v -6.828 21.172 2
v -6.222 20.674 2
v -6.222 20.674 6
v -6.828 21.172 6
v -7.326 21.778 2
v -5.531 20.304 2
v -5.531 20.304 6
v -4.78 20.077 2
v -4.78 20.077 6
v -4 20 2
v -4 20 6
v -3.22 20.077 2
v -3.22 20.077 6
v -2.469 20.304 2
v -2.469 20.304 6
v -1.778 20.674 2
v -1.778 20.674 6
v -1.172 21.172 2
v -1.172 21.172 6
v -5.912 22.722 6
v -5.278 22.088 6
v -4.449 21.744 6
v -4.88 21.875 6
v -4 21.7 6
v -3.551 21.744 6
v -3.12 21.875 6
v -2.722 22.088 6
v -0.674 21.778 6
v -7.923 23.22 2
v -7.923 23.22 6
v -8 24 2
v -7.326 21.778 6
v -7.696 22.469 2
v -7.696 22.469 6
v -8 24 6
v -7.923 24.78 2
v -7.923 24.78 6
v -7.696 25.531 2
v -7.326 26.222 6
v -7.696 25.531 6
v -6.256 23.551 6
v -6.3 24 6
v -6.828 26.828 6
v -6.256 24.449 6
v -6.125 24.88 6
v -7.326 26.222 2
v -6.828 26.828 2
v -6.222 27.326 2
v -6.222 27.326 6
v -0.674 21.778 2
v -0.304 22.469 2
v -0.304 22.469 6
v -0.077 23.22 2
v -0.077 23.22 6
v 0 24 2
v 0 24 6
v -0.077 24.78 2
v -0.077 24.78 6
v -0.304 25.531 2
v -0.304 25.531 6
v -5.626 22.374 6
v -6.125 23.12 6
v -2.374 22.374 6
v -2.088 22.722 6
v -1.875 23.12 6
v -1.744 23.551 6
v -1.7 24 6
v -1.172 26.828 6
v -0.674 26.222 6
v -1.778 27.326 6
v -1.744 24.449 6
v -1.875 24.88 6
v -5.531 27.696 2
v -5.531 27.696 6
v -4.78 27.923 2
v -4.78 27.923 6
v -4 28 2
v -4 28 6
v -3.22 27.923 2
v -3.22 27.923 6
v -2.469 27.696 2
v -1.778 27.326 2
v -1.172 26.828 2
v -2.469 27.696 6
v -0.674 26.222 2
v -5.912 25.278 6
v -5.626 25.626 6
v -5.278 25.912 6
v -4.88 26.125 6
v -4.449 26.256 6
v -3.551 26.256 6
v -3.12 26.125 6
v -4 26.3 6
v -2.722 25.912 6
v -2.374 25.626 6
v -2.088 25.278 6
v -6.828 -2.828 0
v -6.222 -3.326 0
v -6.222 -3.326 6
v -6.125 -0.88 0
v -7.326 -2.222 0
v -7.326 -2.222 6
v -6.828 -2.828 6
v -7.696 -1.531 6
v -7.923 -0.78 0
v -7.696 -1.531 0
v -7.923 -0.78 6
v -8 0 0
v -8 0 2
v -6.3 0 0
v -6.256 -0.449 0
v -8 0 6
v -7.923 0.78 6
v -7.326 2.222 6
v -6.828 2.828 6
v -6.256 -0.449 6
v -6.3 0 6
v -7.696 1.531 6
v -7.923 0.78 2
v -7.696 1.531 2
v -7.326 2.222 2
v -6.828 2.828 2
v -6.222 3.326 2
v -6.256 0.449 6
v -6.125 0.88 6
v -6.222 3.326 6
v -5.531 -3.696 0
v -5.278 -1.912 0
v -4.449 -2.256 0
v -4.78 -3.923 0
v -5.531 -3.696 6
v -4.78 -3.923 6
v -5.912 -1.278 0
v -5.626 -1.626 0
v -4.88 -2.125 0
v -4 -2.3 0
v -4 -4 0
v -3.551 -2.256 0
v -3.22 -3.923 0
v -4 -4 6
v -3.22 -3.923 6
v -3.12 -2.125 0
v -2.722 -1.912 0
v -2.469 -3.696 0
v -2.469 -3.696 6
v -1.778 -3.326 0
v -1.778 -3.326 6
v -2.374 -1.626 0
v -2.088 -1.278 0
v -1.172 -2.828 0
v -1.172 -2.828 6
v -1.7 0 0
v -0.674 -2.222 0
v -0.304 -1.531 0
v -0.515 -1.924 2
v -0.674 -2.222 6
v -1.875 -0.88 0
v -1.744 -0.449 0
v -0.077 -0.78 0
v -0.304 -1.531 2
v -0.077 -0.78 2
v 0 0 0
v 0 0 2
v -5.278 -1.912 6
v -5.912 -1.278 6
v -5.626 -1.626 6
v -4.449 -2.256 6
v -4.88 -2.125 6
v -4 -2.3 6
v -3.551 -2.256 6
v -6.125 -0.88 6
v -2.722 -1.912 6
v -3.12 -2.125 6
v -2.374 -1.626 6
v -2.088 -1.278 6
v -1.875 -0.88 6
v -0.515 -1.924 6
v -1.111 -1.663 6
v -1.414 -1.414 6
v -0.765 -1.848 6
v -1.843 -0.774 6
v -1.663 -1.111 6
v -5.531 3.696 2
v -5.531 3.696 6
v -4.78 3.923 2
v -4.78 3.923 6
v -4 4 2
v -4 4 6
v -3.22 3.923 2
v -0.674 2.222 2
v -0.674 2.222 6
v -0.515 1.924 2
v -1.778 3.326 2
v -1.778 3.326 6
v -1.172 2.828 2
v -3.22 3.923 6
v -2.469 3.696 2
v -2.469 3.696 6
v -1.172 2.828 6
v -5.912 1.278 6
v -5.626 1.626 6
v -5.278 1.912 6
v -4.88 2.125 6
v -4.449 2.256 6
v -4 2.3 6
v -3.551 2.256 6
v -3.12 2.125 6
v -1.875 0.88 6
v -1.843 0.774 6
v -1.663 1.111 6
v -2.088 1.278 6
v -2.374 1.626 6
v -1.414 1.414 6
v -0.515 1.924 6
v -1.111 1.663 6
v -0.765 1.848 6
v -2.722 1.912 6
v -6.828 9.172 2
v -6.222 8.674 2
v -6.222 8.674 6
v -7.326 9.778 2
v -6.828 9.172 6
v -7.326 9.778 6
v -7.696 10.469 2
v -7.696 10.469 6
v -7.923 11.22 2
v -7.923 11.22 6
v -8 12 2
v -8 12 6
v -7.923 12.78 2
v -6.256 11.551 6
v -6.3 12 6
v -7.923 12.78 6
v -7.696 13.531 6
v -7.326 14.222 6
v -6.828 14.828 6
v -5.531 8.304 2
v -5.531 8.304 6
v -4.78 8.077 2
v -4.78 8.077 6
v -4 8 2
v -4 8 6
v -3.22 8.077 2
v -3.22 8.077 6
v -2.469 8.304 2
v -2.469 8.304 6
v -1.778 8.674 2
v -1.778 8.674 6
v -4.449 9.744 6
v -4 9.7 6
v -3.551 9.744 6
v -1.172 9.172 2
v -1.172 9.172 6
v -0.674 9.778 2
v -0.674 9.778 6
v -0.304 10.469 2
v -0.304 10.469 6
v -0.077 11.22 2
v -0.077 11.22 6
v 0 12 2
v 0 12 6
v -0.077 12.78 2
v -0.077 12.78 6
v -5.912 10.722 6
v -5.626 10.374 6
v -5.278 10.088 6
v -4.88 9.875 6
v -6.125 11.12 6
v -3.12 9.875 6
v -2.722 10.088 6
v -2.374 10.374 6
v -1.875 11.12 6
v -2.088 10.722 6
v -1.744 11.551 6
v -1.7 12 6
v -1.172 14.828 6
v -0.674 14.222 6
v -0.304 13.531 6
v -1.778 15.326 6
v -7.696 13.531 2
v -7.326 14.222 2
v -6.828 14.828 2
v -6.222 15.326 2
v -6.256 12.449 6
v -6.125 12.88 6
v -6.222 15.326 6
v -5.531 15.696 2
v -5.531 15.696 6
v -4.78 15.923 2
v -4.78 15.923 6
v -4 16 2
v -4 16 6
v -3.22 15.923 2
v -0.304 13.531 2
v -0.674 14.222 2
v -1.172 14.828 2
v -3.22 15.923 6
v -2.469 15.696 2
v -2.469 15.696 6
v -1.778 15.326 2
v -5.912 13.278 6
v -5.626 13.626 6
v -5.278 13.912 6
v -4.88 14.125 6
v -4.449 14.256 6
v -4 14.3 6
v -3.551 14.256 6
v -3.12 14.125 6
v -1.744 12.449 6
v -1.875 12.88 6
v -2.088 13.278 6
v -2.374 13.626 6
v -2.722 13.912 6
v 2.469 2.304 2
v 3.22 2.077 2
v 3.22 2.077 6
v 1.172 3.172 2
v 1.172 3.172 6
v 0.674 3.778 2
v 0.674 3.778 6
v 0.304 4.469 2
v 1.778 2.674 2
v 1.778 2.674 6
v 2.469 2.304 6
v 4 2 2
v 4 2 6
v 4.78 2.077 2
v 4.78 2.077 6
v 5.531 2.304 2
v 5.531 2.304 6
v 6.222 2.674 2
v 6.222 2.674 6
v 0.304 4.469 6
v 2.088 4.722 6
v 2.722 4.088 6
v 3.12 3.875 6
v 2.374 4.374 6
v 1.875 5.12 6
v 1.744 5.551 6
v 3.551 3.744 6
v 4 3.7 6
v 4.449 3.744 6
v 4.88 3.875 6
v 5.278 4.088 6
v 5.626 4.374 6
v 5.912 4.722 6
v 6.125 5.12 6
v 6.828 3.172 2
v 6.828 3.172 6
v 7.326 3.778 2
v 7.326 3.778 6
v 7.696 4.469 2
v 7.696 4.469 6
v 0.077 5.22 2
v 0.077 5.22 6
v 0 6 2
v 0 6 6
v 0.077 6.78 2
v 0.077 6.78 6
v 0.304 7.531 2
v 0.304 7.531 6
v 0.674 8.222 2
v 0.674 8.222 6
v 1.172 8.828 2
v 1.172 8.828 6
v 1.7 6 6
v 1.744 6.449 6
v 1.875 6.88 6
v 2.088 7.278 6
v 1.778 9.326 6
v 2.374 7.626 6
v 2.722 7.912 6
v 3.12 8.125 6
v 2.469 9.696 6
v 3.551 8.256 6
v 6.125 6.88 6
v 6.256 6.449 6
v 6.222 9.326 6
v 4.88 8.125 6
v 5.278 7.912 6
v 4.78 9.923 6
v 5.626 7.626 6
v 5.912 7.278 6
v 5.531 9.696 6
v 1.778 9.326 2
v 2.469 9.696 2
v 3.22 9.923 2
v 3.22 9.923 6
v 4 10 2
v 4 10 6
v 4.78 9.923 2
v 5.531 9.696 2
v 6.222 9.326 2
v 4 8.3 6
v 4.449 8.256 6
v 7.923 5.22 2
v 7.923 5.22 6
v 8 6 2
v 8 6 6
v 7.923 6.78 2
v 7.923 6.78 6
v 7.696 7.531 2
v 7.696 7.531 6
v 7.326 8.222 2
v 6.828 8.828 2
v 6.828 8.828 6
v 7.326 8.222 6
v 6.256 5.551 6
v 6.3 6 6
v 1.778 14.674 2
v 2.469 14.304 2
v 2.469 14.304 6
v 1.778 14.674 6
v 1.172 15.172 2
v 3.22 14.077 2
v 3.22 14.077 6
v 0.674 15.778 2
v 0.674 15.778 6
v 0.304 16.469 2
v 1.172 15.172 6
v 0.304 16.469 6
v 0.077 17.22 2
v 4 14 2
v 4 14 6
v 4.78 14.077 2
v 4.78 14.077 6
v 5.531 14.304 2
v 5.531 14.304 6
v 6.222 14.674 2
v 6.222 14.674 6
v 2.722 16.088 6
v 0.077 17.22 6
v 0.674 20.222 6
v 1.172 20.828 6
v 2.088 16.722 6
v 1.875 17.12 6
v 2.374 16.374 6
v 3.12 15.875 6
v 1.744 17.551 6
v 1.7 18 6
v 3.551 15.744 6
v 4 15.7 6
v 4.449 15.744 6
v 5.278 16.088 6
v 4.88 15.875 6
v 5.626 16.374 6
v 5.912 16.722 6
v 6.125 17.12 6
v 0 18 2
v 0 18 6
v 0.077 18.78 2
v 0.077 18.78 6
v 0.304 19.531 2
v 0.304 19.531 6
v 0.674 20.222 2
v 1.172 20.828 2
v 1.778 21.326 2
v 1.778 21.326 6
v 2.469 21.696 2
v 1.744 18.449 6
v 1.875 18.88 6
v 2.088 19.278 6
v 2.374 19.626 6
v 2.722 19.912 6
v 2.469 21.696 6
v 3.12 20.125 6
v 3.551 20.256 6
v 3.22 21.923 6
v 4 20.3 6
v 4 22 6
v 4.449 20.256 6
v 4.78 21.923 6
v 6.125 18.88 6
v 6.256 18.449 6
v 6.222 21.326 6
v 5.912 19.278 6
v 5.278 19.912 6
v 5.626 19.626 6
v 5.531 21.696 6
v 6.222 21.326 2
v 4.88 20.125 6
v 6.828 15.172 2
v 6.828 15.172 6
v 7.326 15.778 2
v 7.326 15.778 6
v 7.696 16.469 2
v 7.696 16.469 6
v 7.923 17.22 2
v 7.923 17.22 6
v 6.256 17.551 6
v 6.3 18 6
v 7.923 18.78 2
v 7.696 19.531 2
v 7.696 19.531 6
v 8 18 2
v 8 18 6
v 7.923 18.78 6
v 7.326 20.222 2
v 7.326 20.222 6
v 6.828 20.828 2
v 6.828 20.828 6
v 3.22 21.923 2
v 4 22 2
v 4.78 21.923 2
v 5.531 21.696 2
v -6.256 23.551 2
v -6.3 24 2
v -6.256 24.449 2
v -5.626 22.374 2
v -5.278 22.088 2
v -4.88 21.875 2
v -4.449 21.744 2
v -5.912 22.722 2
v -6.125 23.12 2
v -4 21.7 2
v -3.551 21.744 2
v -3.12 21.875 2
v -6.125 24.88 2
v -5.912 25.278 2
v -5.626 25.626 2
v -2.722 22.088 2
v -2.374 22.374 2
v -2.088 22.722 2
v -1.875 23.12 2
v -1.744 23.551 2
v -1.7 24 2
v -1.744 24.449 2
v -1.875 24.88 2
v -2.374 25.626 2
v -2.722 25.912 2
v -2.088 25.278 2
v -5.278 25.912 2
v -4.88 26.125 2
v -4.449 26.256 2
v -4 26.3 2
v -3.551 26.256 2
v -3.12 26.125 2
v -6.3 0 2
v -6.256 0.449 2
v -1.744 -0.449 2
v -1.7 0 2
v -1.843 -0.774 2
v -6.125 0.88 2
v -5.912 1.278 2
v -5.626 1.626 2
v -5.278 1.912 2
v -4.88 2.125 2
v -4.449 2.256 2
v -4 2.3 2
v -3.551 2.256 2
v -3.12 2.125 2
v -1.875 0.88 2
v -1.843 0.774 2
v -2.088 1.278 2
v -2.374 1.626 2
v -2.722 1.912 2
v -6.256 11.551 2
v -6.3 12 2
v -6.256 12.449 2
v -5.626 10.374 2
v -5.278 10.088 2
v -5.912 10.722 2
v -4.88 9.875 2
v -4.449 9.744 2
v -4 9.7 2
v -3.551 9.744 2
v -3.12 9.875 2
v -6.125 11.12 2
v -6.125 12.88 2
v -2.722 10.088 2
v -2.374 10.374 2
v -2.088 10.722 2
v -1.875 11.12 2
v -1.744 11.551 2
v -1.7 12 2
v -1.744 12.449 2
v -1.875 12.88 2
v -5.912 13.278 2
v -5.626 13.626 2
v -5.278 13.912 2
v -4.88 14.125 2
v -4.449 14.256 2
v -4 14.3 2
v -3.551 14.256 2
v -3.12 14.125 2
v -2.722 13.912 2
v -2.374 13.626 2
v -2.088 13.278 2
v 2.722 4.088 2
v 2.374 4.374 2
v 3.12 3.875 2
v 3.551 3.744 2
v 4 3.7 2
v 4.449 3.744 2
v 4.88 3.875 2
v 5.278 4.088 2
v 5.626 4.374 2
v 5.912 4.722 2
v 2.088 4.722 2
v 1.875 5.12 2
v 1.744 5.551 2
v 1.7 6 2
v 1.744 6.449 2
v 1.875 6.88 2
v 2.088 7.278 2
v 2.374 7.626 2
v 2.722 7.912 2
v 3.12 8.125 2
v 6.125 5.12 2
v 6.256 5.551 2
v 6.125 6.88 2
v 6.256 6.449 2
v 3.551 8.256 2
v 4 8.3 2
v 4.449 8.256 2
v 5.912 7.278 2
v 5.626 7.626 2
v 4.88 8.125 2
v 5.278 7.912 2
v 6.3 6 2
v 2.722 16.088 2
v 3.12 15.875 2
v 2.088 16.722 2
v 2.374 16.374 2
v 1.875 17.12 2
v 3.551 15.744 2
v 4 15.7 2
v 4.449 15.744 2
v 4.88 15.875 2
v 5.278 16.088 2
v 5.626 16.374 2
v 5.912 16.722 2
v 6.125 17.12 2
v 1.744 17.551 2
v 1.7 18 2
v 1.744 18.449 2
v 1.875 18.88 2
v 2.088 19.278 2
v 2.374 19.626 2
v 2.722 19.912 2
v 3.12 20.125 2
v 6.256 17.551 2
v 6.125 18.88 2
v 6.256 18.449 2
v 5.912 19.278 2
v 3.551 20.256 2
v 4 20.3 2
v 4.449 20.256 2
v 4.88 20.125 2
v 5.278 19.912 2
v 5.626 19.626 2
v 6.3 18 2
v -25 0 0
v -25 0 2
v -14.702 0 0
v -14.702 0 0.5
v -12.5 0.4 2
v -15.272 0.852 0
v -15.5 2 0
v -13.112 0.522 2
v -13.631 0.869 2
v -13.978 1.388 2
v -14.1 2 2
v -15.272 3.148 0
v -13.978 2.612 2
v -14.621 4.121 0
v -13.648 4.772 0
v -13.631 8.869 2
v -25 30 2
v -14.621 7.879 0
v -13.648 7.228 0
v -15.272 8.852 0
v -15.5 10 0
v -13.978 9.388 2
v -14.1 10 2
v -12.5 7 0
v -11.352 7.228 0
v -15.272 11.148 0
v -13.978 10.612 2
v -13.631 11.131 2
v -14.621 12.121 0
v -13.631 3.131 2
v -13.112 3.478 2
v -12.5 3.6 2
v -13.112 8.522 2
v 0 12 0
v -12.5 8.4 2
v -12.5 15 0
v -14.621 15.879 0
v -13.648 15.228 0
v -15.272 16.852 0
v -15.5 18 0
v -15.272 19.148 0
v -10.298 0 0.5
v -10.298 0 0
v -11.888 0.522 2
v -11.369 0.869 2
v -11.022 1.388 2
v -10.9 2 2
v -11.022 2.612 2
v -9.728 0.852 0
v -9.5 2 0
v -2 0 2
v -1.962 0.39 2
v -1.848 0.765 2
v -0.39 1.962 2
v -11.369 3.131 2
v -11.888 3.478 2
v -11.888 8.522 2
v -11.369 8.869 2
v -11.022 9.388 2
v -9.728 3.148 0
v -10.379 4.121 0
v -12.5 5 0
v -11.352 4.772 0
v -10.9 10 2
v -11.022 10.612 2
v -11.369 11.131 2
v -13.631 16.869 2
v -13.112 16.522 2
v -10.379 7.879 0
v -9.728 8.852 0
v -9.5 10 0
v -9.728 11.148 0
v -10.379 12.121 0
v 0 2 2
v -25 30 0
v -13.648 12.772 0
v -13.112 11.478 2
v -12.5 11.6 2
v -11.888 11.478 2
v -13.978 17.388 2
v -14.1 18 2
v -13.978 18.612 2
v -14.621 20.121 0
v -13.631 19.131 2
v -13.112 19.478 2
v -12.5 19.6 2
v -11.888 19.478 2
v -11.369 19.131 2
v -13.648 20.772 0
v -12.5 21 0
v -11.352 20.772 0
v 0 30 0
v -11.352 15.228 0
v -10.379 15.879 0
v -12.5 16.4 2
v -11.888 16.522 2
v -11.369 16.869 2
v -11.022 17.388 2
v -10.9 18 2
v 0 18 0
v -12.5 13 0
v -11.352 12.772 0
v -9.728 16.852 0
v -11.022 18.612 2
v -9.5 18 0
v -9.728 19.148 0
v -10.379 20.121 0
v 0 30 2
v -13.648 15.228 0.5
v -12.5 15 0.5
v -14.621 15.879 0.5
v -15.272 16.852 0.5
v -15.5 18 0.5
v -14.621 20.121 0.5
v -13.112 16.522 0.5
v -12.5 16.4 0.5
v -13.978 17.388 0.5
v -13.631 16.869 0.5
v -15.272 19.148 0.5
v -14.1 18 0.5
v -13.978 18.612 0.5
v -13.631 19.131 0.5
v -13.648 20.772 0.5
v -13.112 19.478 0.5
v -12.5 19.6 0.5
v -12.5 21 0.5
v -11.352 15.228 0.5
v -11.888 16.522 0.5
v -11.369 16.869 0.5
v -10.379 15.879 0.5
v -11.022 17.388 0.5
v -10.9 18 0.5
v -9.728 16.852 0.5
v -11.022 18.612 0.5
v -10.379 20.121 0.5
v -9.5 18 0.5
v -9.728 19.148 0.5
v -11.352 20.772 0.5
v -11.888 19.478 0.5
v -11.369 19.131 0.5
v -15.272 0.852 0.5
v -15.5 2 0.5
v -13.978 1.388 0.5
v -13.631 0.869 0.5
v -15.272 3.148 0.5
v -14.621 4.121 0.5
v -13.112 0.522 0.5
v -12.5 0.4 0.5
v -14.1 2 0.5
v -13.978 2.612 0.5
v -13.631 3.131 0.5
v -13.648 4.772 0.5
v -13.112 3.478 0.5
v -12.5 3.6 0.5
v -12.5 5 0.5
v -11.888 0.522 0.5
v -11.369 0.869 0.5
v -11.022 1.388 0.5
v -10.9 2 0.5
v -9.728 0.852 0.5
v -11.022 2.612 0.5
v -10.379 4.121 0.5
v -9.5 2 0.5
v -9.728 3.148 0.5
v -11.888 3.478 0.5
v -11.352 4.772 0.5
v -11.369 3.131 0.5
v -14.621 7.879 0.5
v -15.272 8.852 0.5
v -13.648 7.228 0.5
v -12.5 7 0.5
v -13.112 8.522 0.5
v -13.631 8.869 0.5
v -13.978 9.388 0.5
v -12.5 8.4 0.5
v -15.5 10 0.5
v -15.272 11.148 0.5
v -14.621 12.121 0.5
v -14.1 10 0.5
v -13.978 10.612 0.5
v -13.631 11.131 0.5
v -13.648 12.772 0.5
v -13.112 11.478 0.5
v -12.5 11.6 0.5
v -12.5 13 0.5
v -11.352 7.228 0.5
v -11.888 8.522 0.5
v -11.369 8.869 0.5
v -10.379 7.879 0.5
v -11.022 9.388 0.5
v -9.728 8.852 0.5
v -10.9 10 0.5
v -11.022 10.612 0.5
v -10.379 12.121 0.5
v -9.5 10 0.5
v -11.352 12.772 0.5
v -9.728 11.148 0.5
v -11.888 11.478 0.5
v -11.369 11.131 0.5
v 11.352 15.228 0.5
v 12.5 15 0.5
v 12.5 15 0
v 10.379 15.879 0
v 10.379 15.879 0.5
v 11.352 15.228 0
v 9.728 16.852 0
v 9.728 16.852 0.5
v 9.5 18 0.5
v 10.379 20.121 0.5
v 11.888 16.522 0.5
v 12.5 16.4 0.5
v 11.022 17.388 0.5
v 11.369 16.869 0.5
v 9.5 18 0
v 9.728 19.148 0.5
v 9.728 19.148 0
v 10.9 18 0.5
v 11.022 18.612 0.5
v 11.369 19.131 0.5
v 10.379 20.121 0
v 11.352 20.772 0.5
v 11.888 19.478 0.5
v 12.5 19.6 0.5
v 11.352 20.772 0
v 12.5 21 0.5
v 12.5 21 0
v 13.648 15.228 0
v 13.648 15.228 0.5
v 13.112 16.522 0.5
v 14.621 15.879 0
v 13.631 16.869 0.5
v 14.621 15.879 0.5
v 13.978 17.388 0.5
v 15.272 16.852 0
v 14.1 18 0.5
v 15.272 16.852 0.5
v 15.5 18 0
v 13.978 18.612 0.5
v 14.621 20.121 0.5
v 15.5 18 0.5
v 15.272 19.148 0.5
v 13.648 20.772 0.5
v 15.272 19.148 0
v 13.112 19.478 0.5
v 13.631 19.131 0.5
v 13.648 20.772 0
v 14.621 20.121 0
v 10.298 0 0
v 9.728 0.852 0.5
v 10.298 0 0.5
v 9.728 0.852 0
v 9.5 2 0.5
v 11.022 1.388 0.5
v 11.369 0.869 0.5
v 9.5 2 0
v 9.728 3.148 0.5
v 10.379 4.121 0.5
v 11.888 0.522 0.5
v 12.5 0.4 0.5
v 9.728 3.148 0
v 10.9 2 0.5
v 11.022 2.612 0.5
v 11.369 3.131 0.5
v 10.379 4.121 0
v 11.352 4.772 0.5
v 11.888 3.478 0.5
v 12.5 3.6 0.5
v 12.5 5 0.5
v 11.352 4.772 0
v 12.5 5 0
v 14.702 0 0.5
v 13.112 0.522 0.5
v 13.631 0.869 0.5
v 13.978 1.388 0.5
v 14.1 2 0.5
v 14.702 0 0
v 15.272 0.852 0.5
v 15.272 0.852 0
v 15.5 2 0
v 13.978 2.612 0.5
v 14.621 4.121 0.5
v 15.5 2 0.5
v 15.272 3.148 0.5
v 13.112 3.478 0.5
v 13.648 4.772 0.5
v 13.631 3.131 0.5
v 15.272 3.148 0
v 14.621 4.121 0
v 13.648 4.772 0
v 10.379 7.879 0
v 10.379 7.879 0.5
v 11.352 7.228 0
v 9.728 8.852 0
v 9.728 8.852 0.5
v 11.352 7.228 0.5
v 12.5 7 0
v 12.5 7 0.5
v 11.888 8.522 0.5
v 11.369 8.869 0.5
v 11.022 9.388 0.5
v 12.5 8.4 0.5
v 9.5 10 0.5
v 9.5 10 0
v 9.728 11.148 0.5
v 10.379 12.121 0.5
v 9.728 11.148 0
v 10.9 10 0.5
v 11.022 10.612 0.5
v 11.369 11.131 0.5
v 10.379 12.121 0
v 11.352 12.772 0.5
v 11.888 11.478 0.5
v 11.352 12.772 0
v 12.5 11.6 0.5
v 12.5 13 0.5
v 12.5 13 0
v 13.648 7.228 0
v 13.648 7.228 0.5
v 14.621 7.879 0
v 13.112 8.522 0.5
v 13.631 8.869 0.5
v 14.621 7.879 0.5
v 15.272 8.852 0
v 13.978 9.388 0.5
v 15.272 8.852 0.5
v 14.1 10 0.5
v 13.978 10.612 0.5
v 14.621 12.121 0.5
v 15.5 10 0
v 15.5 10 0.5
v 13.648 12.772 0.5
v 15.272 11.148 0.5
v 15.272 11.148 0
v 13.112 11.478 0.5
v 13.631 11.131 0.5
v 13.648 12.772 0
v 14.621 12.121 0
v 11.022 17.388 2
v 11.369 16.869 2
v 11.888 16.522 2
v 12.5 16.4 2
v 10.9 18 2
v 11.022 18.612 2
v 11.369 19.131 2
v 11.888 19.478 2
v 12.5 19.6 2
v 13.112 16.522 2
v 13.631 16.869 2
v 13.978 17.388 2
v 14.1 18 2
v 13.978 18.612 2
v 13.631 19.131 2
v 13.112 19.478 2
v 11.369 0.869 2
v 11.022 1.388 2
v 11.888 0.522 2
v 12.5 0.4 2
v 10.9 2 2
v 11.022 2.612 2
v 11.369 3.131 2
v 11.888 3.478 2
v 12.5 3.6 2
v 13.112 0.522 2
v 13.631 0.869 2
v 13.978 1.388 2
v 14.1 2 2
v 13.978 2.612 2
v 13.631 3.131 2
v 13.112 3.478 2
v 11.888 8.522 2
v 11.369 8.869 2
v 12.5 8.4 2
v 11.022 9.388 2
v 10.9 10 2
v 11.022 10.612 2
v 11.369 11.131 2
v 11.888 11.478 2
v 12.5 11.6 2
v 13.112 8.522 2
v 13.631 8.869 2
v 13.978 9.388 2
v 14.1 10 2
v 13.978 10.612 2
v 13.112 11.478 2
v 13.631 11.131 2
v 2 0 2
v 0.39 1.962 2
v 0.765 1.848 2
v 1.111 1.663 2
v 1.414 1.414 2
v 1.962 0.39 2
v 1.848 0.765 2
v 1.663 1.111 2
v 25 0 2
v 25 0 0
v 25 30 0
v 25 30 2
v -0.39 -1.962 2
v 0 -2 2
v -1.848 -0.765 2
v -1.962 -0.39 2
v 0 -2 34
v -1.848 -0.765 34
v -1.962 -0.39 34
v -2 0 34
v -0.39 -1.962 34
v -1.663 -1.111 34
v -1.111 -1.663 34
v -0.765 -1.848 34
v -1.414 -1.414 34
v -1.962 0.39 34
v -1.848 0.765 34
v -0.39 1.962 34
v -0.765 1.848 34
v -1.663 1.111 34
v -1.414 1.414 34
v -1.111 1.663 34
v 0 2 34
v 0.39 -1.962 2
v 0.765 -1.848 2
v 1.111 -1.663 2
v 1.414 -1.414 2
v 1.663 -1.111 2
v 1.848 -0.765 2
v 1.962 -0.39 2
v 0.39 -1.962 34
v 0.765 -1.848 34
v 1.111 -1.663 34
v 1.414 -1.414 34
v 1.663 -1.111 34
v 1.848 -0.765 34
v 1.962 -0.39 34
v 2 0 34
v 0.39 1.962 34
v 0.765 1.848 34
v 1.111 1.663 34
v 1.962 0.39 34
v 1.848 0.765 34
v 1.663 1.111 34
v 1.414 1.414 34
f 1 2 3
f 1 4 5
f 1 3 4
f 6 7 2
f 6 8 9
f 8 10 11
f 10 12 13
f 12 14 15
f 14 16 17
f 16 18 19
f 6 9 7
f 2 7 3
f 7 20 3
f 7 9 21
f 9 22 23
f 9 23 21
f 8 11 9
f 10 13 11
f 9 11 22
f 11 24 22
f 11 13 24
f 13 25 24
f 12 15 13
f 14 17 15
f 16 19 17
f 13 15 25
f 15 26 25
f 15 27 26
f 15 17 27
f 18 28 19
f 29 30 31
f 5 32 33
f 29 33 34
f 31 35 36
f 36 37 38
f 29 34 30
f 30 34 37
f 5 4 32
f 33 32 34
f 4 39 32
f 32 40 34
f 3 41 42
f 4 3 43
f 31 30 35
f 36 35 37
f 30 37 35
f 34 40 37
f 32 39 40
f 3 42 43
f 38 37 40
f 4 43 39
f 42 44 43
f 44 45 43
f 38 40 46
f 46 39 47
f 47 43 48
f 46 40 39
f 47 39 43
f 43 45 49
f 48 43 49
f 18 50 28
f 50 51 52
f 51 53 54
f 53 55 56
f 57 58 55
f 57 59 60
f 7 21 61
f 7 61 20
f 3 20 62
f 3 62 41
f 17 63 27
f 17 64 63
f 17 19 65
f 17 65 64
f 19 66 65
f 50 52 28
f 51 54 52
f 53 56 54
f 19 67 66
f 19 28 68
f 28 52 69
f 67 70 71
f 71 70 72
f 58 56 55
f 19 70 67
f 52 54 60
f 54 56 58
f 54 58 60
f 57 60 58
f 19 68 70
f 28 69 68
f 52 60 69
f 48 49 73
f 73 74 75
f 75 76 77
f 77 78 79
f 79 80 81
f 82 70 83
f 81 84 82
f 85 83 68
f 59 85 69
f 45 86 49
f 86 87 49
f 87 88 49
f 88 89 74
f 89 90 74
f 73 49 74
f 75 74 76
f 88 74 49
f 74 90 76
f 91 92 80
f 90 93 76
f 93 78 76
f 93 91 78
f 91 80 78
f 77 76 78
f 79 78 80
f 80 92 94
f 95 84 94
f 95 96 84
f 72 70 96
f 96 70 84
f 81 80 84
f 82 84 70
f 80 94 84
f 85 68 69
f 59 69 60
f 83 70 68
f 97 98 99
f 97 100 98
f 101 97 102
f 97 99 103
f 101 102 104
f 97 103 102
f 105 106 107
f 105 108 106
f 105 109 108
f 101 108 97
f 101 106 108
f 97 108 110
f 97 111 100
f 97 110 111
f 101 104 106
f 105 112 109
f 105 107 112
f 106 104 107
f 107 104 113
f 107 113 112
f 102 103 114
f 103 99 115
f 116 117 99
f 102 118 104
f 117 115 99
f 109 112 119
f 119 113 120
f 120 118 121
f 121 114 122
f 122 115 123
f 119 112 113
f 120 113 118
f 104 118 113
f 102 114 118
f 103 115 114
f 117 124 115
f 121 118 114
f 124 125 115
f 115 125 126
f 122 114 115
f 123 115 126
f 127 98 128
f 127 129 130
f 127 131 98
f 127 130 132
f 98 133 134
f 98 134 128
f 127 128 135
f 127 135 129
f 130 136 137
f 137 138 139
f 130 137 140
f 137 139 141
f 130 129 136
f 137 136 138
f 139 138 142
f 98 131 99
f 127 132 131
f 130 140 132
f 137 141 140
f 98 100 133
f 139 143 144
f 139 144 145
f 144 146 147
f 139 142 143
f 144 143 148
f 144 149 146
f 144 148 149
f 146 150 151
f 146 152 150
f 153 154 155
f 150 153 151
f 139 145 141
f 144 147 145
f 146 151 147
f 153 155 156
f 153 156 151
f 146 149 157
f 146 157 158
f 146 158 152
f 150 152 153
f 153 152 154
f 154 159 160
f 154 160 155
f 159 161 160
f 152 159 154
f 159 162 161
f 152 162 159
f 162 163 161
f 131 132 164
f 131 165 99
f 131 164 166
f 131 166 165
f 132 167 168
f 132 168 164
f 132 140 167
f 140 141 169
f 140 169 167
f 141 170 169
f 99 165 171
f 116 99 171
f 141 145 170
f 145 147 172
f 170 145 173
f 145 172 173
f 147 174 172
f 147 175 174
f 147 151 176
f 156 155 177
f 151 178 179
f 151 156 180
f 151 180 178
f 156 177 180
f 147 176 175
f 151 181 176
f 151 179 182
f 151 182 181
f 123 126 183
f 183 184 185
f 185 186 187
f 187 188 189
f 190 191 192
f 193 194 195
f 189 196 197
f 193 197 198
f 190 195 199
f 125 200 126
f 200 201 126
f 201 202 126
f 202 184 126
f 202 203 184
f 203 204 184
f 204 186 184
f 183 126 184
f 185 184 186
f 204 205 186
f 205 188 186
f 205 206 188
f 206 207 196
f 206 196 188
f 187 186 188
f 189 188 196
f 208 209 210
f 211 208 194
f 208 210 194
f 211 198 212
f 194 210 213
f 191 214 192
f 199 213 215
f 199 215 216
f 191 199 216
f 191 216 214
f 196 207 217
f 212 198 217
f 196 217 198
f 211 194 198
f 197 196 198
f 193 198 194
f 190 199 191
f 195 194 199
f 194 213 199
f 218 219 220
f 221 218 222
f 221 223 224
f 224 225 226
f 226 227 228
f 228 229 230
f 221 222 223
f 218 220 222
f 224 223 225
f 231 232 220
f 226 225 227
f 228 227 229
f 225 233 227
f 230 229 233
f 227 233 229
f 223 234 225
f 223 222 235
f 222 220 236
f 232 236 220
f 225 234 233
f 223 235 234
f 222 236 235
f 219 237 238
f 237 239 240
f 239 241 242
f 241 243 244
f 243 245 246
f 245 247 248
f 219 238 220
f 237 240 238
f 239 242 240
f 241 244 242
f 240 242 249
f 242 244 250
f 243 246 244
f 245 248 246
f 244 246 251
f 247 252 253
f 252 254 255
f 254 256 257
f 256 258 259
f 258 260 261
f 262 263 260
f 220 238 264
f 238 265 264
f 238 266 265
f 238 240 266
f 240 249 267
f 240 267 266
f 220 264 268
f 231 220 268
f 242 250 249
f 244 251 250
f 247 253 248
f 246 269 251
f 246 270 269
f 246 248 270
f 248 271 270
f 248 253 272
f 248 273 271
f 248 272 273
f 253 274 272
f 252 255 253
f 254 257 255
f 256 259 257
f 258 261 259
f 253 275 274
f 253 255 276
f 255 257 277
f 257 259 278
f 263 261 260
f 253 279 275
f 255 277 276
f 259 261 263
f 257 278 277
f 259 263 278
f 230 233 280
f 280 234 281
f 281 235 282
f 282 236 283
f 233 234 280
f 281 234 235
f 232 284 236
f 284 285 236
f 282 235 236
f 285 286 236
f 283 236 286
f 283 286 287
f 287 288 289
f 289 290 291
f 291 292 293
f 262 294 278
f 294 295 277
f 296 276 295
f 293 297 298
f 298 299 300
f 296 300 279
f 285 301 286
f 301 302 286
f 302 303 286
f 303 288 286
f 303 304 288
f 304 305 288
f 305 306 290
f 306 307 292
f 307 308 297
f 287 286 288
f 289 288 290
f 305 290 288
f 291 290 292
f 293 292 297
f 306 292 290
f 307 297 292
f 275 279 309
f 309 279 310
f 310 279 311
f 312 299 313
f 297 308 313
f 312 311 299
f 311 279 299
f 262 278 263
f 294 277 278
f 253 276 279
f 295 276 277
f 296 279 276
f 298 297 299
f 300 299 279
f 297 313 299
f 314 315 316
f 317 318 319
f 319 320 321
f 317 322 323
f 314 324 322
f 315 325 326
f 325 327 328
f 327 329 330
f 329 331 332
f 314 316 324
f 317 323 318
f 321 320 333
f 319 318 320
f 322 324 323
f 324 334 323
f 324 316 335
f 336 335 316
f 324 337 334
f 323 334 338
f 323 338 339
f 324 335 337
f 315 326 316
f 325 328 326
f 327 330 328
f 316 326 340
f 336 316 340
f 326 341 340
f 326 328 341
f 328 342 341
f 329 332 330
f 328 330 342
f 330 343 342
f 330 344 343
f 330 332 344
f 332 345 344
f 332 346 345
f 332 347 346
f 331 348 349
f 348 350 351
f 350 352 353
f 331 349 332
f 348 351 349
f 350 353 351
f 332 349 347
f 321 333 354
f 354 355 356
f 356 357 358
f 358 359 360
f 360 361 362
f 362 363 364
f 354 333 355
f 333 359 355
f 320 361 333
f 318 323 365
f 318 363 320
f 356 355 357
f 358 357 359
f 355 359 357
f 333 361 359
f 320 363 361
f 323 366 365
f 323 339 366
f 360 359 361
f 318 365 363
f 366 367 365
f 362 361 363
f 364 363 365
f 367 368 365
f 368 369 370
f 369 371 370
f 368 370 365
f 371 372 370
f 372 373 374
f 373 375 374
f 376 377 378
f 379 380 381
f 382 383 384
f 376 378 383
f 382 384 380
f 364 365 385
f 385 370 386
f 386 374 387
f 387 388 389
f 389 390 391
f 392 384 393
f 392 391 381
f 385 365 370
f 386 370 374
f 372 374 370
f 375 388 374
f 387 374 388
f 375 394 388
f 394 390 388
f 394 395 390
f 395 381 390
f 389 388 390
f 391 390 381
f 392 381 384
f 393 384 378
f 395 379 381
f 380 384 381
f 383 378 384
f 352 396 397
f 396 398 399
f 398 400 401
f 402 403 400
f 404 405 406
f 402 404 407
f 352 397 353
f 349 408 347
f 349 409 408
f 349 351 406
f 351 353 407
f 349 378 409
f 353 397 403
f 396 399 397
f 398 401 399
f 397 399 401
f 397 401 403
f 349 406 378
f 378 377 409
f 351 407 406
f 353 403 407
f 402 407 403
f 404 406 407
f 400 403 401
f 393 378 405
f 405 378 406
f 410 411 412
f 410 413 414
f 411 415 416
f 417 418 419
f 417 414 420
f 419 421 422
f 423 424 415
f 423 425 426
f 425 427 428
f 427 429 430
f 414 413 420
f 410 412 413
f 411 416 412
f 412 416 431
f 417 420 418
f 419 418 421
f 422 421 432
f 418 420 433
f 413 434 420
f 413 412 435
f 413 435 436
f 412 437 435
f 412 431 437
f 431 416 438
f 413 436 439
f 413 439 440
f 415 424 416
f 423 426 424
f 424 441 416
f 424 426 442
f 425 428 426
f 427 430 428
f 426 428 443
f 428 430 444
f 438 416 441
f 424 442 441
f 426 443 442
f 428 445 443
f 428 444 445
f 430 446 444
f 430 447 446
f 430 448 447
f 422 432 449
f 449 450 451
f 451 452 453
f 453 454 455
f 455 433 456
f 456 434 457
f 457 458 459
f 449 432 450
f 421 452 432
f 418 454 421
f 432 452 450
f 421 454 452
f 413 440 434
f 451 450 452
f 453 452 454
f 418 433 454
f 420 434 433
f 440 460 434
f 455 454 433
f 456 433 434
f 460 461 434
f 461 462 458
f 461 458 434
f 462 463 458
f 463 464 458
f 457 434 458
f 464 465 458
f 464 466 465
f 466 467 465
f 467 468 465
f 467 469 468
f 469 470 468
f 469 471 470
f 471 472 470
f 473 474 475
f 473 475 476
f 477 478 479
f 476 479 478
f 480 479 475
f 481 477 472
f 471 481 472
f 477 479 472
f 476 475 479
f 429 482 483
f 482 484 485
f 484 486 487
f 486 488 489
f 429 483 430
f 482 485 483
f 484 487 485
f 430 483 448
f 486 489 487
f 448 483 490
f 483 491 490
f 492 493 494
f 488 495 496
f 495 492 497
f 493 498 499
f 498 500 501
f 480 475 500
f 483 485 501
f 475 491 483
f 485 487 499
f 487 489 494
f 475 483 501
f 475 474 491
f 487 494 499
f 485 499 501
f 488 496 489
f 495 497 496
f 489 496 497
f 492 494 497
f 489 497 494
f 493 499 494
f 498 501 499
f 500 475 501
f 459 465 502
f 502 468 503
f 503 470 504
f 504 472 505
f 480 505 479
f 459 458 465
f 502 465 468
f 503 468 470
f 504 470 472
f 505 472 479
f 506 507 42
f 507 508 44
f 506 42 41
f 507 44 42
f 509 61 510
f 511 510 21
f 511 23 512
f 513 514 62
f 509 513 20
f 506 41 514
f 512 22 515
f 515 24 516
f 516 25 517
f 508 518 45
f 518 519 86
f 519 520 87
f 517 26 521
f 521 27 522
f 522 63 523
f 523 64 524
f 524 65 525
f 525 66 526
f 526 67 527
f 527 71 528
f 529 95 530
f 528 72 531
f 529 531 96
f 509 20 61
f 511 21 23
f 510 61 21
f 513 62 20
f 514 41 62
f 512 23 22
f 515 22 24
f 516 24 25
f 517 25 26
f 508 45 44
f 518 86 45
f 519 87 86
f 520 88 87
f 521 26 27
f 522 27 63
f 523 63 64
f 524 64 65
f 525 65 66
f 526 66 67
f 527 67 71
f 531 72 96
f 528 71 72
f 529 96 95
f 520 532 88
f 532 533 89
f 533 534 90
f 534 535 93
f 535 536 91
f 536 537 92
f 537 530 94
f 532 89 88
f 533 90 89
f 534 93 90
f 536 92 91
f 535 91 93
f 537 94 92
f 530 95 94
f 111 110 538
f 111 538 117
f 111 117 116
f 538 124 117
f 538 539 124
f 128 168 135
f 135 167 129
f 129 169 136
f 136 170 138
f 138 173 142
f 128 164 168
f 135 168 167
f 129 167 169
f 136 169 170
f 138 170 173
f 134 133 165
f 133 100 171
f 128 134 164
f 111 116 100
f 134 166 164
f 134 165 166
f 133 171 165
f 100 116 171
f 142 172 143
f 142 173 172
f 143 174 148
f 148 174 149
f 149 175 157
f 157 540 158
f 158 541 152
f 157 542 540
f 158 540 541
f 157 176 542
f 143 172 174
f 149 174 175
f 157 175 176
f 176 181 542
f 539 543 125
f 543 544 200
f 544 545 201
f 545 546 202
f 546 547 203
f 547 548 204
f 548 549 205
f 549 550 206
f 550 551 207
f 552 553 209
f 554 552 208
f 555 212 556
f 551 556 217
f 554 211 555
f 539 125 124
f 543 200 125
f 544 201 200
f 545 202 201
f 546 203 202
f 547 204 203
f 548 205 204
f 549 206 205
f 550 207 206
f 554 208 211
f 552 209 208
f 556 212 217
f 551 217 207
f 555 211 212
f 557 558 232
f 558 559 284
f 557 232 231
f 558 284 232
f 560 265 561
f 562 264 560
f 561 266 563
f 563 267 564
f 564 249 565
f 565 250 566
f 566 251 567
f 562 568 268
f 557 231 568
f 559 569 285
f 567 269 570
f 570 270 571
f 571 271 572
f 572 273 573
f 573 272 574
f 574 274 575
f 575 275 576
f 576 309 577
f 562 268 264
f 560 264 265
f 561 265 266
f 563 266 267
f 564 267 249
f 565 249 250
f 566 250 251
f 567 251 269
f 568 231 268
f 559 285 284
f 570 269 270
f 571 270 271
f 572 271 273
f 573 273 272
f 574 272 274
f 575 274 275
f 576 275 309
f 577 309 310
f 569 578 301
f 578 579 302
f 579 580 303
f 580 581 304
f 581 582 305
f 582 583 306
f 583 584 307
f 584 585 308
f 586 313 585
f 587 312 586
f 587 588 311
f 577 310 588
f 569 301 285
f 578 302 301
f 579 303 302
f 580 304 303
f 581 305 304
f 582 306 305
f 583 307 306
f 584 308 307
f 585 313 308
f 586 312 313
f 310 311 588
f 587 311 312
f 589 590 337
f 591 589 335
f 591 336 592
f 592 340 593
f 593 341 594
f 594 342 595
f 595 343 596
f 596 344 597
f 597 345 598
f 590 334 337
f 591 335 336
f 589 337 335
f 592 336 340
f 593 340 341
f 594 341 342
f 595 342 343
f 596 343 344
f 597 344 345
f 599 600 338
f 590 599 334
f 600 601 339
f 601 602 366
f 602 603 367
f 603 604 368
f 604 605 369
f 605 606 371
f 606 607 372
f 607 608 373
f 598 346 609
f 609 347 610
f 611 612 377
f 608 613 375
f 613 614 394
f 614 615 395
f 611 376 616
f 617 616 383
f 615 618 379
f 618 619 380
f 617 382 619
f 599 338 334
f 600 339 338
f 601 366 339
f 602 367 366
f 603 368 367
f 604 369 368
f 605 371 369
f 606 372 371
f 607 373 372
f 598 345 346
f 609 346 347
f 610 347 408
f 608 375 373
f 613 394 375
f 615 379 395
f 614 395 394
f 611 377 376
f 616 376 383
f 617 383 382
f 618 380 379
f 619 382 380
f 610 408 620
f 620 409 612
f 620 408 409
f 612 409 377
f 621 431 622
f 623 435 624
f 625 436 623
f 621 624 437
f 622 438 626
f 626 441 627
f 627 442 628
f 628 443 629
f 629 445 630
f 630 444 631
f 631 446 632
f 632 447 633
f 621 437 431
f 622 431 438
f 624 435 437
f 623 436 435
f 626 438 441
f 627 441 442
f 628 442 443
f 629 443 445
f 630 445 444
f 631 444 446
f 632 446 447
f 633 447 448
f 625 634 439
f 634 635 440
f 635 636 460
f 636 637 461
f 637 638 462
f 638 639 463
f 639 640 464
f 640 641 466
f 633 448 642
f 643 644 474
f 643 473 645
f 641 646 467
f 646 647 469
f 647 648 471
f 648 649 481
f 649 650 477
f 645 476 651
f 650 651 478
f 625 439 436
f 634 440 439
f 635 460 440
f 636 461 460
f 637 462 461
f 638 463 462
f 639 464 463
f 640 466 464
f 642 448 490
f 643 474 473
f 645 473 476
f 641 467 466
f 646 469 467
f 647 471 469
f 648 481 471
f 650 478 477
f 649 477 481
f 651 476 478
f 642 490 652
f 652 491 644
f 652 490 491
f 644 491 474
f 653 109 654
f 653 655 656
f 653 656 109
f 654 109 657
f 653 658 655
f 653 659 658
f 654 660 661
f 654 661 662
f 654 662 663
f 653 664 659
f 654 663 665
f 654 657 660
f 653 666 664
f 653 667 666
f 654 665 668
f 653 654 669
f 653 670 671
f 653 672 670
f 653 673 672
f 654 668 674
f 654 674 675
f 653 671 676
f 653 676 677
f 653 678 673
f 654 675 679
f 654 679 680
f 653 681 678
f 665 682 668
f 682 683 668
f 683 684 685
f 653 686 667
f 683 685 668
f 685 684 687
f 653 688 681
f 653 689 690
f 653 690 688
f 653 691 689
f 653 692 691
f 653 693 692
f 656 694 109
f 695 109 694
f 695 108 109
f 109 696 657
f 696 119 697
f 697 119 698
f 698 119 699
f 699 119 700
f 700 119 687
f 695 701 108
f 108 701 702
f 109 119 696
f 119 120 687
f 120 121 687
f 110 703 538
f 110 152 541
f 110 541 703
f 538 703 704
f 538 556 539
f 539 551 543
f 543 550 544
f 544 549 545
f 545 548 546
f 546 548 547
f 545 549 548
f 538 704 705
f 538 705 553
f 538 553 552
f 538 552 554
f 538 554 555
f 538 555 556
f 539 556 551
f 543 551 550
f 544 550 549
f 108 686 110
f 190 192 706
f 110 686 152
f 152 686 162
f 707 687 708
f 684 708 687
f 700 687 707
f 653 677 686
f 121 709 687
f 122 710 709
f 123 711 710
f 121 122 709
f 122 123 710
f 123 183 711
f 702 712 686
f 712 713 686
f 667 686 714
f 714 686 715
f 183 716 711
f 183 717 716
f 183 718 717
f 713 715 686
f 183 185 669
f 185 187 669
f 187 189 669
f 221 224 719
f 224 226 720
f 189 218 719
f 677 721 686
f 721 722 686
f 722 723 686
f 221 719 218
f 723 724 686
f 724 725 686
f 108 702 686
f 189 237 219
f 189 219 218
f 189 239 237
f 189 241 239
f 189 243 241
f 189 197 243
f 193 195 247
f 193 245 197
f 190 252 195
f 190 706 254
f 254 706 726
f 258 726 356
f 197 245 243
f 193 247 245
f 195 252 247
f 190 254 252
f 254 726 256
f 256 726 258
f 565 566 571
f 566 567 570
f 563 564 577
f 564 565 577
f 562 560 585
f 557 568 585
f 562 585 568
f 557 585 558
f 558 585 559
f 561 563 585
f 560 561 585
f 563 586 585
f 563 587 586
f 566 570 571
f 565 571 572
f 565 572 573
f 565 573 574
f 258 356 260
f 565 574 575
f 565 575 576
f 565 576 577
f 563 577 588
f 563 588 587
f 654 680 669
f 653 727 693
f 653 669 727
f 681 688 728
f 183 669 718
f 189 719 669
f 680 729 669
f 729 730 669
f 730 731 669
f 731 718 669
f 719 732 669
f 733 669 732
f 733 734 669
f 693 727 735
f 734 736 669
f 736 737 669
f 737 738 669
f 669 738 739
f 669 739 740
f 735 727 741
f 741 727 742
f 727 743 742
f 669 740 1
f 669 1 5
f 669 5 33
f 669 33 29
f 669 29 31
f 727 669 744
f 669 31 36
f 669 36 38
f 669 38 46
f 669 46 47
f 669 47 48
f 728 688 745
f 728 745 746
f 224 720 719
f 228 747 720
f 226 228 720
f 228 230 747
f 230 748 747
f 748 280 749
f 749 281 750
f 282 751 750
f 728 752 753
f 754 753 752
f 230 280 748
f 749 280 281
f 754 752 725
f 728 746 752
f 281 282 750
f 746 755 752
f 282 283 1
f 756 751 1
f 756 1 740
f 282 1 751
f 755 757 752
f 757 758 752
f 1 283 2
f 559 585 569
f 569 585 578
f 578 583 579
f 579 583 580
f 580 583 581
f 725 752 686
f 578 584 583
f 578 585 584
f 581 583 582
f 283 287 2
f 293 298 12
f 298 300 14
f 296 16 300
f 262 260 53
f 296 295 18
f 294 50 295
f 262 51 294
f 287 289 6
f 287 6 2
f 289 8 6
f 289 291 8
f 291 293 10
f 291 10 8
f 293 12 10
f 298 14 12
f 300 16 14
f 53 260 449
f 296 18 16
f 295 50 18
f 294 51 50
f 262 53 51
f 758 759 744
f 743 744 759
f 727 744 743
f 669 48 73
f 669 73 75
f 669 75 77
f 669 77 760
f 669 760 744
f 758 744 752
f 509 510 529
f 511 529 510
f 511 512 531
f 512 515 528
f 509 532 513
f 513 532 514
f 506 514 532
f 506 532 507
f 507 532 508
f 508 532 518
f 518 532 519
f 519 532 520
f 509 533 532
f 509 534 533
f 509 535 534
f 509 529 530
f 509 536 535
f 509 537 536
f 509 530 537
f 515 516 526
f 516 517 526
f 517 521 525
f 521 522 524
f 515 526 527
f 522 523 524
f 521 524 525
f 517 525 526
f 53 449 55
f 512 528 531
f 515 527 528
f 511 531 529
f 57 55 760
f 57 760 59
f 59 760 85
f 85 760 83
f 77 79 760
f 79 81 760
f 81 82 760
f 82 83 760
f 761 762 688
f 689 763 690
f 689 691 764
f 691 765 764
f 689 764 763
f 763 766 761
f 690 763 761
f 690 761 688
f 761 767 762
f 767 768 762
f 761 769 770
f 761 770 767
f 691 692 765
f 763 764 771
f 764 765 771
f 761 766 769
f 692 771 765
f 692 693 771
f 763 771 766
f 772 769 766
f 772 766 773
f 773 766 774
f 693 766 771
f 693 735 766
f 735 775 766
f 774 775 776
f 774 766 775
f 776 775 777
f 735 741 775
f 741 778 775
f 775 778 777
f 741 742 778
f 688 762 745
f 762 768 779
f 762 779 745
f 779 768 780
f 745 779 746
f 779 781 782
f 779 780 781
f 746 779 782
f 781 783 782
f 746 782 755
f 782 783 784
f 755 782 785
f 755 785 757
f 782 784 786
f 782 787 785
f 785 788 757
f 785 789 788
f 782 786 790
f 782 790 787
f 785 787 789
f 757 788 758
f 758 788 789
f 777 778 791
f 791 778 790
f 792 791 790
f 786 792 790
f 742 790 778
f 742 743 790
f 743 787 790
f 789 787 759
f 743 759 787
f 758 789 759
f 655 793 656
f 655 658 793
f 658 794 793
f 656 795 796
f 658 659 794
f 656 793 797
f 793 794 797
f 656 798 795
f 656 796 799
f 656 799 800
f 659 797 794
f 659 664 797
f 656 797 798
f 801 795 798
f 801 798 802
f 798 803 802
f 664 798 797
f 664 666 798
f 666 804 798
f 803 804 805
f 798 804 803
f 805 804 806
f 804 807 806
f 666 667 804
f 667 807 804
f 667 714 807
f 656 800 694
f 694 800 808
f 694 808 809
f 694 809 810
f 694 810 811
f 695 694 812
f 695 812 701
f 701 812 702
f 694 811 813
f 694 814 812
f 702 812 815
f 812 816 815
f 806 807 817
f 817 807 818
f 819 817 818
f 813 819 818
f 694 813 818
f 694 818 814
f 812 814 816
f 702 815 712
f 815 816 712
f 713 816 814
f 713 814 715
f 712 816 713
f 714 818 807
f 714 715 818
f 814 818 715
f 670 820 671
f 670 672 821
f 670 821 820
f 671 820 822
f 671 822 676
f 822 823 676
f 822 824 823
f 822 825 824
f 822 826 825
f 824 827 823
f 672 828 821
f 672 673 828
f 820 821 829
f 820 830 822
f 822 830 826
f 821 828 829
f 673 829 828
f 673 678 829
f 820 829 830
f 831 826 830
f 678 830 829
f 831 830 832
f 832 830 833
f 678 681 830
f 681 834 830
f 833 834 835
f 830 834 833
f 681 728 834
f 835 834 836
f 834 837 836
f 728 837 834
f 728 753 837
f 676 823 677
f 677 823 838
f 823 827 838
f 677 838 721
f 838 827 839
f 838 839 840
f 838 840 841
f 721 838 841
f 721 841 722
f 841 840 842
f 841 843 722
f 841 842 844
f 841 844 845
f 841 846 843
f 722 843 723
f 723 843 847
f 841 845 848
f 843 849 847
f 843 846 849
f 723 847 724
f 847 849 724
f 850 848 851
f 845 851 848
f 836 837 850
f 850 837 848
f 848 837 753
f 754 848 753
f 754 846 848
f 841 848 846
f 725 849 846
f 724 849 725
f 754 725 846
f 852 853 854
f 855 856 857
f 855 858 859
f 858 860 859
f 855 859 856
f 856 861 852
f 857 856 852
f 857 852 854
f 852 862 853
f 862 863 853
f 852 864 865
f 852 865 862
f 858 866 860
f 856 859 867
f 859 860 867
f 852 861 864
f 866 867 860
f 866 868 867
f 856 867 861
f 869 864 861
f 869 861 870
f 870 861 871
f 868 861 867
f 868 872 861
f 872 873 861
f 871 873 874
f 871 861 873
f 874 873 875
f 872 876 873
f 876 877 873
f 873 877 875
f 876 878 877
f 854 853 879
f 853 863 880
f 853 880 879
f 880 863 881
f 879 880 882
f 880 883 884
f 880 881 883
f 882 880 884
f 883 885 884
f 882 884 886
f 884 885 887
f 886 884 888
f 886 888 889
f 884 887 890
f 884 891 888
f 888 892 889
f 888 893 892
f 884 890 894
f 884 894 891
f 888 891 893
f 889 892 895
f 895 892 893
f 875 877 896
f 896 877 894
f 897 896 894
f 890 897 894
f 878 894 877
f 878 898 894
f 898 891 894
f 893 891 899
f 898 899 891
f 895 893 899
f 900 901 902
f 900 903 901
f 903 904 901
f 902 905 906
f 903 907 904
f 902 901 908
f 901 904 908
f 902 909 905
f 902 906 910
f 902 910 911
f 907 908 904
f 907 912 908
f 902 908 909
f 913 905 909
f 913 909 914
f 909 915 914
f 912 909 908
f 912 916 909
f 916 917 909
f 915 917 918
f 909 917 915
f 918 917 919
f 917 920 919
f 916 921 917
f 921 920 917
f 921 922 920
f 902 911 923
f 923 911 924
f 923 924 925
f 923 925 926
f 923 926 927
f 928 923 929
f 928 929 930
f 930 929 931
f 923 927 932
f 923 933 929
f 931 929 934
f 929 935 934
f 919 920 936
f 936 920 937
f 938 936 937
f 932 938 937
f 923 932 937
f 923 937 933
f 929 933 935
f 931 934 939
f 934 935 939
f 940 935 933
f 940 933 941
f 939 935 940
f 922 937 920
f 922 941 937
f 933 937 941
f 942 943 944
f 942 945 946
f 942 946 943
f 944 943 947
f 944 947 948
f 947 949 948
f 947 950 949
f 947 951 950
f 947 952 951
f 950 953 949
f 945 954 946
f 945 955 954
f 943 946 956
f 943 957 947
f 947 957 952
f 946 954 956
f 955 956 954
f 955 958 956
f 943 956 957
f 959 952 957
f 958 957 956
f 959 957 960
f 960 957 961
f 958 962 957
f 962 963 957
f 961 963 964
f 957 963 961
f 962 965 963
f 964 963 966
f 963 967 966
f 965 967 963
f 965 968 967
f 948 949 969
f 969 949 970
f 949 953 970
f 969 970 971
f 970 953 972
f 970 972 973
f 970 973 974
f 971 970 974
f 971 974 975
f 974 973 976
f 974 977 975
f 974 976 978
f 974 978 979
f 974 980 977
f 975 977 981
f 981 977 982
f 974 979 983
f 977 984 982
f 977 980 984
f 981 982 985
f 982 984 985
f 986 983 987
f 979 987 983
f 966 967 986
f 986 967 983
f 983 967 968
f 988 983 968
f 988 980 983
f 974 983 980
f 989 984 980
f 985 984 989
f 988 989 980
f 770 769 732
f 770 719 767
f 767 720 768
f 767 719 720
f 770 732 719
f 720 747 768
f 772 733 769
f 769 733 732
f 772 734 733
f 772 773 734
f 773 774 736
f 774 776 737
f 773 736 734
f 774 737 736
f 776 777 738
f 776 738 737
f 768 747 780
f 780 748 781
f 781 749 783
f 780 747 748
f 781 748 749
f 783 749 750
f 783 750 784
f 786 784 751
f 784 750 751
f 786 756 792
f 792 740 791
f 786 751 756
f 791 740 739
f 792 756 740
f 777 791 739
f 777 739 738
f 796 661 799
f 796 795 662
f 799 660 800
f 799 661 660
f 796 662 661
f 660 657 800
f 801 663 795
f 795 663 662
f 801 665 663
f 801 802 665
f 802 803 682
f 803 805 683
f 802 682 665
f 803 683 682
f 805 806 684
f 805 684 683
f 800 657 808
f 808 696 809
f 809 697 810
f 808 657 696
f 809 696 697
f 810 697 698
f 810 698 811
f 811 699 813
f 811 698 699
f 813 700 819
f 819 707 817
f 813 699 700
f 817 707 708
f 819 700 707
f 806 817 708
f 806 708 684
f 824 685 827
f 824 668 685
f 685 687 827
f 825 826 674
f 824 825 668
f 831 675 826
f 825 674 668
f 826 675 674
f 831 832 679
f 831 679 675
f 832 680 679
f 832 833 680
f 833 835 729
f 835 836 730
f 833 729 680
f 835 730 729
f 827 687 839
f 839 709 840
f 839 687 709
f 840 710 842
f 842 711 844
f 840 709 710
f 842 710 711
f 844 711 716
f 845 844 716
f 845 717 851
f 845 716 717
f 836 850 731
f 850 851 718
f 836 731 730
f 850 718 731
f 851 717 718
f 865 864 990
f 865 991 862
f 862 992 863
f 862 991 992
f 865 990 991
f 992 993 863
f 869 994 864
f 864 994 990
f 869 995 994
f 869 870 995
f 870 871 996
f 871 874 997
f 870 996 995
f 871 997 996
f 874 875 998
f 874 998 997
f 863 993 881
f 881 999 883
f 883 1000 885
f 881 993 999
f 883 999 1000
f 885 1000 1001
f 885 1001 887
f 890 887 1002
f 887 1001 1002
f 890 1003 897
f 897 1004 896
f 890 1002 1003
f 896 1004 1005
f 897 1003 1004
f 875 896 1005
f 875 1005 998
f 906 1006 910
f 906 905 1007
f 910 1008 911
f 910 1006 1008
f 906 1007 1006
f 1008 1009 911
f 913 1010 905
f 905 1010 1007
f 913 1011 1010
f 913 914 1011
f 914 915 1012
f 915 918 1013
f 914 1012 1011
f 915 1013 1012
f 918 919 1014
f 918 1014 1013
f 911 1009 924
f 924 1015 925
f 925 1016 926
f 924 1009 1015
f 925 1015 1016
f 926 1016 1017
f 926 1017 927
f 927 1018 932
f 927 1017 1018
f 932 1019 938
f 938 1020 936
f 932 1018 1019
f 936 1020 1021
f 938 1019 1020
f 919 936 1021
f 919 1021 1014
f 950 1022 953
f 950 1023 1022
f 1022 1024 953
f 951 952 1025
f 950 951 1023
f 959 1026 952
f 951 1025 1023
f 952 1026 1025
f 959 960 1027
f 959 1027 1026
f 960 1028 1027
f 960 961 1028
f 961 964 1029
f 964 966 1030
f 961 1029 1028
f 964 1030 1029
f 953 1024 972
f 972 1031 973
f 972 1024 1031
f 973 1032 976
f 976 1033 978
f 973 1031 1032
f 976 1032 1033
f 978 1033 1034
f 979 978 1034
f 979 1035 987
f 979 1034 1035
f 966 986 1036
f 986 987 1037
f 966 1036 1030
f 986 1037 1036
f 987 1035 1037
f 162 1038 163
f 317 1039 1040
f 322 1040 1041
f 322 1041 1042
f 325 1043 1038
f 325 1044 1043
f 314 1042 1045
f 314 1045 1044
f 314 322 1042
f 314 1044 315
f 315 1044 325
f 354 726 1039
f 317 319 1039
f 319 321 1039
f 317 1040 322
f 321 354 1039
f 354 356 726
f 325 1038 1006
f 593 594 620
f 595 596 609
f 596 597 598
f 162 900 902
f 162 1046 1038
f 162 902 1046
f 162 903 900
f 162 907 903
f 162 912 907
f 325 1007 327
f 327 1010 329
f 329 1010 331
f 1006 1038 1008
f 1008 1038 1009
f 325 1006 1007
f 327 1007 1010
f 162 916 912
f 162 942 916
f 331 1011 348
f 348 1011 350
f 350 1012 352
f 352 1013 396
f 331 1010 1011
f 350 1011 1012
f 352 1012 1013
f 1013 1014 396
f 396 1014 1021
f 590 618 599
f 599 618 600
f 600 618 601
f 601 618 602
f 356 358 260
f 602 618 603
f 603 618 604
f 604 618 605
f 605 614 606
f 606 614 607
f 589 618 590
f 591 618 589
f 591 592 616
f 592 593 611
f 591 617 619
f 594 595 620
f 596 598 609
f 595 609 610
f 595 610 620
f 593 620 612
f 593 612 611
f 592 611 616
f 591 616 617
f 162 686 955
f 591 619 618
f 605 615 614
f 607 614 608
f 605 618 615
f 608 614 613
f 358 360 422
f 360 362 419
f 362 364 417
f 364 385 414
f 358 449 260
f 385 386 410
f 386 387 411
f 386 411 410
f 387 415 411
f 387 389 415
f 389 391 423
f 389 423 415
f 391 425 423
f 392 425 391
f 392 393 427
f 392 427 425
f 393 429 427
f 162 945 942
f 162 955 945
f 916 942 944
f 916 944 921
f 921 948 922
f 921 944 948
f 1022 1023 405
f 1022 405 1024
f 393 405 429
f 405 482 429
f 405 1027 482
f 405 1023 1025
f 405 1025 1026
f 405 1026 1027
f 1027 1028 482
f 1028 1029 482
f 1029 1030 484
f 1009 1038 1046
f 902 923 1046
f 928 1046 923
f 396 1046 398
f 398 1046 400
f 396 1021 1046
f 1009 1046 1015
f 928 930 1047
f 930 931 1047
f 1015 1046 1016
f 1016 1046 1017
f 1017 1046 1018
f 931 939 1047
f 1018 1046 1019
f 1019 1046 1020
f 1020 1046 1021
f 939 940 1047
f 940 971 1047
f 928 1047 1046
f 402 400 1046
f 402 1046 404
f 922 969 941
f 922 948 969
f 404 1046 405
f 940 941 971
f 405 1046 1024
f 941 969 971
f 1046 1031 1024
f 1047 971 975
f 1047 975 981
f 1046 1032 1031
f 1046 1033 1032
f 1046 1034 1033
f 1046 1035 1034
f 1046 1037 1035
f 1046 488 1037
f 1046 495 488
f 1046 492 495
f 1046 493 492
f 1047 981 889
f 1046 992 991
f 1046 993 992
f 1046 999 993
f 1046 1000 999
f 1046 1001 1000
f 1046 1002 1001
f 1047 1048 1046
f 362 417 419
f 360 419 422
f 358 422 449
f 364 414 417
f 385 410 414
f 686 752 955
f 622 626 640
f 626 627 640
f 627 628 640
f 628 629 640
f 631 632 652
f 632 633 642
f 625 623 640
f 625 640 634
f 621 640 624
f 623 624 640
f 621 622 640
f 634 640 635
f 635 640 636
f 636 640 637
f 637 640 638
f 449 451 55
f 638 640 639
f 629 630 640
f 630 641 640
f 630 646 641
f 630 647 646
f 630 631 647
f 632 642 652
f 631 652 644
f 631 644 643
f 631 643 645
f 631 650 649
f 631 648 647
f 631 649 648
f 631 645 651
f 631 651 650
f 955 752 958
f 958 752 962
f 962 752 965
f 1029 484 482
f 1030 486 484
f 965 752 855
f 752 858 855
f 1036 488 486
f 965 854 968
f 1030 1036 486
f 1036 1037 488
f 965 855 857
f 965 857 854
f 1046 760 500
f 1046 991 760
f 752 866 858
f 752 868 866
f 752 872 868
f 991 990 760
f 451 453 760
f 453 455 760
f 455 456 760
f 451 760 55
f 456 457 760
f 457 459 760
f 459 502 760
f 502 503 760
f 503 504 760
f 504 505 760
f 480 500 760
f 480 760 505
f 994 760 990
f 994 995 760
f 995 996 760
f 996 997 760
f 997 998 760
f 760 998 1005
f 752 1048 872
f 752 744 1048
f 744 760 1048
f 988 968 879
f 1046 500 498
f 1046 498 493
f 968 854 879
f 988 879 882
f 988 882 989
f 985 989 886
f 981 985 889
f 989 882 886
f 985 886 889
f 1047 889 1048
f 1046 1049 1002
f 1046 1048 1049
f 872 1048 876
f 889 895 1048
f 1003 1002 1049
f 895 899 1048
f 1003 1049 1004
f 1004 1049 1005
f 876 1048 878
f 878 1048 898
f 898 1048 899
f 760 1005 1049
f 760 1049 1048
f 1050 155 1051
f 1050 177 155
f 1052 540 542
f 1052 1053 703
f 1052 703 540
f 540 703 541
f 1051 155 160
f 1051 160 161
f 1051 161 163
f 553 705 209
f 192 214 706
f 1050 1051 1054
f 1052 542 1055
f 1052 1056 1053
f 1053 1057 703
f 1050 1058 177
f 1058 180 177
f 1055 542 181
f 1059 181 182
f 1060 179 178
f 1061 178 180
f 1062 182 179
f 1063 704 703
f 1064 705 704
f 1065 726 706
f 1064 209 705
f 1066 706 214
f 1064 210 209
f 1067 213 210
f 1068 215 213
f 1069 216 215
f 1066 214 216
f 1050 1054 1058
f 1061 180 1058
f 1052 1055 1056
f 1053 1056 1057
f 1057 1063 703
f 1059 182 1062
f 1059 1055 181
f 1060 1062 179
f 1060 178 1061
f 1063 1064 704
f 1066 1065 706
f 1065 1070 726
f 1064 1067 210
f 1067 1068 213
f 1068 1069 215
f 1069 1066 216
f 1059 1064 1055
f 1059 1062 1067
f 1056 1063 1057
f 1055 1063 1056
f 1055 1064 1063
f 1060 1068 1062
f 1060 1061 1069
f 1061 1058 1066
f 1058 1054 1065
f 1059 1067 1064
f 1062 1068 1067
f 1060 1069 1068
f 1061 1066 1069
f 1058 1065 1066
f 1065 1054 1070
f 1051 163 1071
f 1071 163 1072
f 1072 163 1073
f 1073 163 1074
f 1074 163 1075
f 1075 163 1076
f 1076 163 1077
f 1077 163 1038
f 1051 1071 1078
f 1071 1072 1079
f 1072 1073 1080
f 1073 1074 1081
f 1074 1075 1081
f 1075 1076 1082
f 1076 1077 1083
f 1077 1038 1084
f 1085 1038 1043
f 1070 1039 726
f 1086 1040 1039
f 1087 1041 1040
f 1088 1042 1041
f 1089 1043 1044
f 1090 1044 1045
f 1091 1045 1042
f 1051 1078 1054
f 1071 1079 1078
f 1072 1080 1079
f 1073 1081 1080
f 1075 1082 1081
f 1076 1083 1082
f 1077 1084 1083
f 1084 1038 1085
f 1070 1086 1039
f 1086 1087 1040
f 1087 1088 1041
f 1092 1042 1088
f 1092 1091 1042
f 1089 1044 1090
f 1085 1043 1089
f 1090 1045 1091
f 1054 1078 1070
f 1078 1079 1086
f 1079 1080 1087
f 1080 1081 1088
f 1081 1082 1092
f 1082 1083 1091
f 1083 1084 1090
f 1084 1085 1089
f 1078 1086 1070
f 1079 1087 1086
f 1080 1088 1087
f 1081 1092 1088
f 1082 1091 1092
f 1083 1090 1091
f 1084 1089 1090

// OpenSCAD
// Butt Hinge Assembly - 180° Open State

// Parameters
leaf_length = 30;      // Y direction (along hinge axis)
leaf_width = 25;       // X direction (opening direction)
leaf_thickness = 2;
pin_diameter = 4;
pin_length = 32;
knuckle_outer_dia = 8;
knuckle_inner_dia = 4.6;
knuckle_width = 6;

// Module: Single leaf (flat plate)
module leaf(width, length, thickness) {
    cube([width, length, thickness], center=false);
}

// Module: Knuckle (cylindrical hinge element)
module knuckle() {
    difference() {
        cylinder(d=knuckle_outer_dia, h=knuckle_width, center=false, $fn=32);
        cylinder(d=knuckle_inner_dia, h=knuckle_width, center=false, $fn=32);
    }
}

// Module: Countersunk hole (M3)
module countersunk_hole() {
    union() {
        // Countersink: 6mm dia, 1mm deep
        cylinder(d=6, h=1, center=false, $fn=16);
        // Through hole: 3.2mm dia
        cylinder(d=3.2, h=leaf_thickness+2, center=false, $fn=16);
    }
}

// Module: Left leaf with knuckles and countersunk holes
module left_leaf_assembly() {
    difference() {
        union() {
            // Base plate (extends in negative X direction)
            translate([-(leaf_width), 0, 0])
                leaf(leaf_width, leaf_length, leaf_thickness);
            
            // Knuckles at Y = 0, 12, 24 mm (left leaf: outer 2 + center 1)
            for (y_pos = [0, 12, 24]) {
                translate([-knuckle_outer_dia/2, y_pos, 0])
                    knuckle();
            }
        }
        
        // Countersunk holes at Y = 2, 10, 18 mm (8mm spacing)
        for (y_pos = [2, 10, 18]) {
            translate([-(leaf_width/2), y_pos, -0.5])
                countersunk_hole();
        }
    }
}

// Module: Right leaf with knuckles and countersunk holes
module right_leaf_assembly() {
    difference() {
        union() {
            // Base plate (extends in positive X direction)
            leaf(leaf_width, leaf_length, leaf_thickness);
            
            // Knuckles at Y = 6, 18 mm (right leaf: intermediate 2)
            for (y_pos = [6, 18]) {
                translate([knuckle_outer_dia/2, y_pos, 0])
                    knuckle();
            }
        }
        
        // Countersunk holes at Y = 2, 10, 18 mm (8mm spacing)
        for (y_pos = [2, 10, 18]) {
            translate([leaf_width/2, y_pos, -0.5])
                countersunk_hole();
        }
    }
}

// Module: Pin shaft
module pin_shaft() {
    cylinder(d=pin_diameter, h=pin_length, center=false, $fn=32);
}

// Assembly - 180° open state
// Pin shaft centered at X=0, running along Y axis from Y=0 to Y=32
translate([0, 0, leaf_thickness])
    pin_shaft();

// Left leaf: plate extends in negative X, centered at origin
translate([0, 0, 0])
    left_leaf_assembly();

// Right leaf: plate extends in positive X, centered at origin, at same Z height
translate([0, 0, 0])
    right_leaf_assembly();
